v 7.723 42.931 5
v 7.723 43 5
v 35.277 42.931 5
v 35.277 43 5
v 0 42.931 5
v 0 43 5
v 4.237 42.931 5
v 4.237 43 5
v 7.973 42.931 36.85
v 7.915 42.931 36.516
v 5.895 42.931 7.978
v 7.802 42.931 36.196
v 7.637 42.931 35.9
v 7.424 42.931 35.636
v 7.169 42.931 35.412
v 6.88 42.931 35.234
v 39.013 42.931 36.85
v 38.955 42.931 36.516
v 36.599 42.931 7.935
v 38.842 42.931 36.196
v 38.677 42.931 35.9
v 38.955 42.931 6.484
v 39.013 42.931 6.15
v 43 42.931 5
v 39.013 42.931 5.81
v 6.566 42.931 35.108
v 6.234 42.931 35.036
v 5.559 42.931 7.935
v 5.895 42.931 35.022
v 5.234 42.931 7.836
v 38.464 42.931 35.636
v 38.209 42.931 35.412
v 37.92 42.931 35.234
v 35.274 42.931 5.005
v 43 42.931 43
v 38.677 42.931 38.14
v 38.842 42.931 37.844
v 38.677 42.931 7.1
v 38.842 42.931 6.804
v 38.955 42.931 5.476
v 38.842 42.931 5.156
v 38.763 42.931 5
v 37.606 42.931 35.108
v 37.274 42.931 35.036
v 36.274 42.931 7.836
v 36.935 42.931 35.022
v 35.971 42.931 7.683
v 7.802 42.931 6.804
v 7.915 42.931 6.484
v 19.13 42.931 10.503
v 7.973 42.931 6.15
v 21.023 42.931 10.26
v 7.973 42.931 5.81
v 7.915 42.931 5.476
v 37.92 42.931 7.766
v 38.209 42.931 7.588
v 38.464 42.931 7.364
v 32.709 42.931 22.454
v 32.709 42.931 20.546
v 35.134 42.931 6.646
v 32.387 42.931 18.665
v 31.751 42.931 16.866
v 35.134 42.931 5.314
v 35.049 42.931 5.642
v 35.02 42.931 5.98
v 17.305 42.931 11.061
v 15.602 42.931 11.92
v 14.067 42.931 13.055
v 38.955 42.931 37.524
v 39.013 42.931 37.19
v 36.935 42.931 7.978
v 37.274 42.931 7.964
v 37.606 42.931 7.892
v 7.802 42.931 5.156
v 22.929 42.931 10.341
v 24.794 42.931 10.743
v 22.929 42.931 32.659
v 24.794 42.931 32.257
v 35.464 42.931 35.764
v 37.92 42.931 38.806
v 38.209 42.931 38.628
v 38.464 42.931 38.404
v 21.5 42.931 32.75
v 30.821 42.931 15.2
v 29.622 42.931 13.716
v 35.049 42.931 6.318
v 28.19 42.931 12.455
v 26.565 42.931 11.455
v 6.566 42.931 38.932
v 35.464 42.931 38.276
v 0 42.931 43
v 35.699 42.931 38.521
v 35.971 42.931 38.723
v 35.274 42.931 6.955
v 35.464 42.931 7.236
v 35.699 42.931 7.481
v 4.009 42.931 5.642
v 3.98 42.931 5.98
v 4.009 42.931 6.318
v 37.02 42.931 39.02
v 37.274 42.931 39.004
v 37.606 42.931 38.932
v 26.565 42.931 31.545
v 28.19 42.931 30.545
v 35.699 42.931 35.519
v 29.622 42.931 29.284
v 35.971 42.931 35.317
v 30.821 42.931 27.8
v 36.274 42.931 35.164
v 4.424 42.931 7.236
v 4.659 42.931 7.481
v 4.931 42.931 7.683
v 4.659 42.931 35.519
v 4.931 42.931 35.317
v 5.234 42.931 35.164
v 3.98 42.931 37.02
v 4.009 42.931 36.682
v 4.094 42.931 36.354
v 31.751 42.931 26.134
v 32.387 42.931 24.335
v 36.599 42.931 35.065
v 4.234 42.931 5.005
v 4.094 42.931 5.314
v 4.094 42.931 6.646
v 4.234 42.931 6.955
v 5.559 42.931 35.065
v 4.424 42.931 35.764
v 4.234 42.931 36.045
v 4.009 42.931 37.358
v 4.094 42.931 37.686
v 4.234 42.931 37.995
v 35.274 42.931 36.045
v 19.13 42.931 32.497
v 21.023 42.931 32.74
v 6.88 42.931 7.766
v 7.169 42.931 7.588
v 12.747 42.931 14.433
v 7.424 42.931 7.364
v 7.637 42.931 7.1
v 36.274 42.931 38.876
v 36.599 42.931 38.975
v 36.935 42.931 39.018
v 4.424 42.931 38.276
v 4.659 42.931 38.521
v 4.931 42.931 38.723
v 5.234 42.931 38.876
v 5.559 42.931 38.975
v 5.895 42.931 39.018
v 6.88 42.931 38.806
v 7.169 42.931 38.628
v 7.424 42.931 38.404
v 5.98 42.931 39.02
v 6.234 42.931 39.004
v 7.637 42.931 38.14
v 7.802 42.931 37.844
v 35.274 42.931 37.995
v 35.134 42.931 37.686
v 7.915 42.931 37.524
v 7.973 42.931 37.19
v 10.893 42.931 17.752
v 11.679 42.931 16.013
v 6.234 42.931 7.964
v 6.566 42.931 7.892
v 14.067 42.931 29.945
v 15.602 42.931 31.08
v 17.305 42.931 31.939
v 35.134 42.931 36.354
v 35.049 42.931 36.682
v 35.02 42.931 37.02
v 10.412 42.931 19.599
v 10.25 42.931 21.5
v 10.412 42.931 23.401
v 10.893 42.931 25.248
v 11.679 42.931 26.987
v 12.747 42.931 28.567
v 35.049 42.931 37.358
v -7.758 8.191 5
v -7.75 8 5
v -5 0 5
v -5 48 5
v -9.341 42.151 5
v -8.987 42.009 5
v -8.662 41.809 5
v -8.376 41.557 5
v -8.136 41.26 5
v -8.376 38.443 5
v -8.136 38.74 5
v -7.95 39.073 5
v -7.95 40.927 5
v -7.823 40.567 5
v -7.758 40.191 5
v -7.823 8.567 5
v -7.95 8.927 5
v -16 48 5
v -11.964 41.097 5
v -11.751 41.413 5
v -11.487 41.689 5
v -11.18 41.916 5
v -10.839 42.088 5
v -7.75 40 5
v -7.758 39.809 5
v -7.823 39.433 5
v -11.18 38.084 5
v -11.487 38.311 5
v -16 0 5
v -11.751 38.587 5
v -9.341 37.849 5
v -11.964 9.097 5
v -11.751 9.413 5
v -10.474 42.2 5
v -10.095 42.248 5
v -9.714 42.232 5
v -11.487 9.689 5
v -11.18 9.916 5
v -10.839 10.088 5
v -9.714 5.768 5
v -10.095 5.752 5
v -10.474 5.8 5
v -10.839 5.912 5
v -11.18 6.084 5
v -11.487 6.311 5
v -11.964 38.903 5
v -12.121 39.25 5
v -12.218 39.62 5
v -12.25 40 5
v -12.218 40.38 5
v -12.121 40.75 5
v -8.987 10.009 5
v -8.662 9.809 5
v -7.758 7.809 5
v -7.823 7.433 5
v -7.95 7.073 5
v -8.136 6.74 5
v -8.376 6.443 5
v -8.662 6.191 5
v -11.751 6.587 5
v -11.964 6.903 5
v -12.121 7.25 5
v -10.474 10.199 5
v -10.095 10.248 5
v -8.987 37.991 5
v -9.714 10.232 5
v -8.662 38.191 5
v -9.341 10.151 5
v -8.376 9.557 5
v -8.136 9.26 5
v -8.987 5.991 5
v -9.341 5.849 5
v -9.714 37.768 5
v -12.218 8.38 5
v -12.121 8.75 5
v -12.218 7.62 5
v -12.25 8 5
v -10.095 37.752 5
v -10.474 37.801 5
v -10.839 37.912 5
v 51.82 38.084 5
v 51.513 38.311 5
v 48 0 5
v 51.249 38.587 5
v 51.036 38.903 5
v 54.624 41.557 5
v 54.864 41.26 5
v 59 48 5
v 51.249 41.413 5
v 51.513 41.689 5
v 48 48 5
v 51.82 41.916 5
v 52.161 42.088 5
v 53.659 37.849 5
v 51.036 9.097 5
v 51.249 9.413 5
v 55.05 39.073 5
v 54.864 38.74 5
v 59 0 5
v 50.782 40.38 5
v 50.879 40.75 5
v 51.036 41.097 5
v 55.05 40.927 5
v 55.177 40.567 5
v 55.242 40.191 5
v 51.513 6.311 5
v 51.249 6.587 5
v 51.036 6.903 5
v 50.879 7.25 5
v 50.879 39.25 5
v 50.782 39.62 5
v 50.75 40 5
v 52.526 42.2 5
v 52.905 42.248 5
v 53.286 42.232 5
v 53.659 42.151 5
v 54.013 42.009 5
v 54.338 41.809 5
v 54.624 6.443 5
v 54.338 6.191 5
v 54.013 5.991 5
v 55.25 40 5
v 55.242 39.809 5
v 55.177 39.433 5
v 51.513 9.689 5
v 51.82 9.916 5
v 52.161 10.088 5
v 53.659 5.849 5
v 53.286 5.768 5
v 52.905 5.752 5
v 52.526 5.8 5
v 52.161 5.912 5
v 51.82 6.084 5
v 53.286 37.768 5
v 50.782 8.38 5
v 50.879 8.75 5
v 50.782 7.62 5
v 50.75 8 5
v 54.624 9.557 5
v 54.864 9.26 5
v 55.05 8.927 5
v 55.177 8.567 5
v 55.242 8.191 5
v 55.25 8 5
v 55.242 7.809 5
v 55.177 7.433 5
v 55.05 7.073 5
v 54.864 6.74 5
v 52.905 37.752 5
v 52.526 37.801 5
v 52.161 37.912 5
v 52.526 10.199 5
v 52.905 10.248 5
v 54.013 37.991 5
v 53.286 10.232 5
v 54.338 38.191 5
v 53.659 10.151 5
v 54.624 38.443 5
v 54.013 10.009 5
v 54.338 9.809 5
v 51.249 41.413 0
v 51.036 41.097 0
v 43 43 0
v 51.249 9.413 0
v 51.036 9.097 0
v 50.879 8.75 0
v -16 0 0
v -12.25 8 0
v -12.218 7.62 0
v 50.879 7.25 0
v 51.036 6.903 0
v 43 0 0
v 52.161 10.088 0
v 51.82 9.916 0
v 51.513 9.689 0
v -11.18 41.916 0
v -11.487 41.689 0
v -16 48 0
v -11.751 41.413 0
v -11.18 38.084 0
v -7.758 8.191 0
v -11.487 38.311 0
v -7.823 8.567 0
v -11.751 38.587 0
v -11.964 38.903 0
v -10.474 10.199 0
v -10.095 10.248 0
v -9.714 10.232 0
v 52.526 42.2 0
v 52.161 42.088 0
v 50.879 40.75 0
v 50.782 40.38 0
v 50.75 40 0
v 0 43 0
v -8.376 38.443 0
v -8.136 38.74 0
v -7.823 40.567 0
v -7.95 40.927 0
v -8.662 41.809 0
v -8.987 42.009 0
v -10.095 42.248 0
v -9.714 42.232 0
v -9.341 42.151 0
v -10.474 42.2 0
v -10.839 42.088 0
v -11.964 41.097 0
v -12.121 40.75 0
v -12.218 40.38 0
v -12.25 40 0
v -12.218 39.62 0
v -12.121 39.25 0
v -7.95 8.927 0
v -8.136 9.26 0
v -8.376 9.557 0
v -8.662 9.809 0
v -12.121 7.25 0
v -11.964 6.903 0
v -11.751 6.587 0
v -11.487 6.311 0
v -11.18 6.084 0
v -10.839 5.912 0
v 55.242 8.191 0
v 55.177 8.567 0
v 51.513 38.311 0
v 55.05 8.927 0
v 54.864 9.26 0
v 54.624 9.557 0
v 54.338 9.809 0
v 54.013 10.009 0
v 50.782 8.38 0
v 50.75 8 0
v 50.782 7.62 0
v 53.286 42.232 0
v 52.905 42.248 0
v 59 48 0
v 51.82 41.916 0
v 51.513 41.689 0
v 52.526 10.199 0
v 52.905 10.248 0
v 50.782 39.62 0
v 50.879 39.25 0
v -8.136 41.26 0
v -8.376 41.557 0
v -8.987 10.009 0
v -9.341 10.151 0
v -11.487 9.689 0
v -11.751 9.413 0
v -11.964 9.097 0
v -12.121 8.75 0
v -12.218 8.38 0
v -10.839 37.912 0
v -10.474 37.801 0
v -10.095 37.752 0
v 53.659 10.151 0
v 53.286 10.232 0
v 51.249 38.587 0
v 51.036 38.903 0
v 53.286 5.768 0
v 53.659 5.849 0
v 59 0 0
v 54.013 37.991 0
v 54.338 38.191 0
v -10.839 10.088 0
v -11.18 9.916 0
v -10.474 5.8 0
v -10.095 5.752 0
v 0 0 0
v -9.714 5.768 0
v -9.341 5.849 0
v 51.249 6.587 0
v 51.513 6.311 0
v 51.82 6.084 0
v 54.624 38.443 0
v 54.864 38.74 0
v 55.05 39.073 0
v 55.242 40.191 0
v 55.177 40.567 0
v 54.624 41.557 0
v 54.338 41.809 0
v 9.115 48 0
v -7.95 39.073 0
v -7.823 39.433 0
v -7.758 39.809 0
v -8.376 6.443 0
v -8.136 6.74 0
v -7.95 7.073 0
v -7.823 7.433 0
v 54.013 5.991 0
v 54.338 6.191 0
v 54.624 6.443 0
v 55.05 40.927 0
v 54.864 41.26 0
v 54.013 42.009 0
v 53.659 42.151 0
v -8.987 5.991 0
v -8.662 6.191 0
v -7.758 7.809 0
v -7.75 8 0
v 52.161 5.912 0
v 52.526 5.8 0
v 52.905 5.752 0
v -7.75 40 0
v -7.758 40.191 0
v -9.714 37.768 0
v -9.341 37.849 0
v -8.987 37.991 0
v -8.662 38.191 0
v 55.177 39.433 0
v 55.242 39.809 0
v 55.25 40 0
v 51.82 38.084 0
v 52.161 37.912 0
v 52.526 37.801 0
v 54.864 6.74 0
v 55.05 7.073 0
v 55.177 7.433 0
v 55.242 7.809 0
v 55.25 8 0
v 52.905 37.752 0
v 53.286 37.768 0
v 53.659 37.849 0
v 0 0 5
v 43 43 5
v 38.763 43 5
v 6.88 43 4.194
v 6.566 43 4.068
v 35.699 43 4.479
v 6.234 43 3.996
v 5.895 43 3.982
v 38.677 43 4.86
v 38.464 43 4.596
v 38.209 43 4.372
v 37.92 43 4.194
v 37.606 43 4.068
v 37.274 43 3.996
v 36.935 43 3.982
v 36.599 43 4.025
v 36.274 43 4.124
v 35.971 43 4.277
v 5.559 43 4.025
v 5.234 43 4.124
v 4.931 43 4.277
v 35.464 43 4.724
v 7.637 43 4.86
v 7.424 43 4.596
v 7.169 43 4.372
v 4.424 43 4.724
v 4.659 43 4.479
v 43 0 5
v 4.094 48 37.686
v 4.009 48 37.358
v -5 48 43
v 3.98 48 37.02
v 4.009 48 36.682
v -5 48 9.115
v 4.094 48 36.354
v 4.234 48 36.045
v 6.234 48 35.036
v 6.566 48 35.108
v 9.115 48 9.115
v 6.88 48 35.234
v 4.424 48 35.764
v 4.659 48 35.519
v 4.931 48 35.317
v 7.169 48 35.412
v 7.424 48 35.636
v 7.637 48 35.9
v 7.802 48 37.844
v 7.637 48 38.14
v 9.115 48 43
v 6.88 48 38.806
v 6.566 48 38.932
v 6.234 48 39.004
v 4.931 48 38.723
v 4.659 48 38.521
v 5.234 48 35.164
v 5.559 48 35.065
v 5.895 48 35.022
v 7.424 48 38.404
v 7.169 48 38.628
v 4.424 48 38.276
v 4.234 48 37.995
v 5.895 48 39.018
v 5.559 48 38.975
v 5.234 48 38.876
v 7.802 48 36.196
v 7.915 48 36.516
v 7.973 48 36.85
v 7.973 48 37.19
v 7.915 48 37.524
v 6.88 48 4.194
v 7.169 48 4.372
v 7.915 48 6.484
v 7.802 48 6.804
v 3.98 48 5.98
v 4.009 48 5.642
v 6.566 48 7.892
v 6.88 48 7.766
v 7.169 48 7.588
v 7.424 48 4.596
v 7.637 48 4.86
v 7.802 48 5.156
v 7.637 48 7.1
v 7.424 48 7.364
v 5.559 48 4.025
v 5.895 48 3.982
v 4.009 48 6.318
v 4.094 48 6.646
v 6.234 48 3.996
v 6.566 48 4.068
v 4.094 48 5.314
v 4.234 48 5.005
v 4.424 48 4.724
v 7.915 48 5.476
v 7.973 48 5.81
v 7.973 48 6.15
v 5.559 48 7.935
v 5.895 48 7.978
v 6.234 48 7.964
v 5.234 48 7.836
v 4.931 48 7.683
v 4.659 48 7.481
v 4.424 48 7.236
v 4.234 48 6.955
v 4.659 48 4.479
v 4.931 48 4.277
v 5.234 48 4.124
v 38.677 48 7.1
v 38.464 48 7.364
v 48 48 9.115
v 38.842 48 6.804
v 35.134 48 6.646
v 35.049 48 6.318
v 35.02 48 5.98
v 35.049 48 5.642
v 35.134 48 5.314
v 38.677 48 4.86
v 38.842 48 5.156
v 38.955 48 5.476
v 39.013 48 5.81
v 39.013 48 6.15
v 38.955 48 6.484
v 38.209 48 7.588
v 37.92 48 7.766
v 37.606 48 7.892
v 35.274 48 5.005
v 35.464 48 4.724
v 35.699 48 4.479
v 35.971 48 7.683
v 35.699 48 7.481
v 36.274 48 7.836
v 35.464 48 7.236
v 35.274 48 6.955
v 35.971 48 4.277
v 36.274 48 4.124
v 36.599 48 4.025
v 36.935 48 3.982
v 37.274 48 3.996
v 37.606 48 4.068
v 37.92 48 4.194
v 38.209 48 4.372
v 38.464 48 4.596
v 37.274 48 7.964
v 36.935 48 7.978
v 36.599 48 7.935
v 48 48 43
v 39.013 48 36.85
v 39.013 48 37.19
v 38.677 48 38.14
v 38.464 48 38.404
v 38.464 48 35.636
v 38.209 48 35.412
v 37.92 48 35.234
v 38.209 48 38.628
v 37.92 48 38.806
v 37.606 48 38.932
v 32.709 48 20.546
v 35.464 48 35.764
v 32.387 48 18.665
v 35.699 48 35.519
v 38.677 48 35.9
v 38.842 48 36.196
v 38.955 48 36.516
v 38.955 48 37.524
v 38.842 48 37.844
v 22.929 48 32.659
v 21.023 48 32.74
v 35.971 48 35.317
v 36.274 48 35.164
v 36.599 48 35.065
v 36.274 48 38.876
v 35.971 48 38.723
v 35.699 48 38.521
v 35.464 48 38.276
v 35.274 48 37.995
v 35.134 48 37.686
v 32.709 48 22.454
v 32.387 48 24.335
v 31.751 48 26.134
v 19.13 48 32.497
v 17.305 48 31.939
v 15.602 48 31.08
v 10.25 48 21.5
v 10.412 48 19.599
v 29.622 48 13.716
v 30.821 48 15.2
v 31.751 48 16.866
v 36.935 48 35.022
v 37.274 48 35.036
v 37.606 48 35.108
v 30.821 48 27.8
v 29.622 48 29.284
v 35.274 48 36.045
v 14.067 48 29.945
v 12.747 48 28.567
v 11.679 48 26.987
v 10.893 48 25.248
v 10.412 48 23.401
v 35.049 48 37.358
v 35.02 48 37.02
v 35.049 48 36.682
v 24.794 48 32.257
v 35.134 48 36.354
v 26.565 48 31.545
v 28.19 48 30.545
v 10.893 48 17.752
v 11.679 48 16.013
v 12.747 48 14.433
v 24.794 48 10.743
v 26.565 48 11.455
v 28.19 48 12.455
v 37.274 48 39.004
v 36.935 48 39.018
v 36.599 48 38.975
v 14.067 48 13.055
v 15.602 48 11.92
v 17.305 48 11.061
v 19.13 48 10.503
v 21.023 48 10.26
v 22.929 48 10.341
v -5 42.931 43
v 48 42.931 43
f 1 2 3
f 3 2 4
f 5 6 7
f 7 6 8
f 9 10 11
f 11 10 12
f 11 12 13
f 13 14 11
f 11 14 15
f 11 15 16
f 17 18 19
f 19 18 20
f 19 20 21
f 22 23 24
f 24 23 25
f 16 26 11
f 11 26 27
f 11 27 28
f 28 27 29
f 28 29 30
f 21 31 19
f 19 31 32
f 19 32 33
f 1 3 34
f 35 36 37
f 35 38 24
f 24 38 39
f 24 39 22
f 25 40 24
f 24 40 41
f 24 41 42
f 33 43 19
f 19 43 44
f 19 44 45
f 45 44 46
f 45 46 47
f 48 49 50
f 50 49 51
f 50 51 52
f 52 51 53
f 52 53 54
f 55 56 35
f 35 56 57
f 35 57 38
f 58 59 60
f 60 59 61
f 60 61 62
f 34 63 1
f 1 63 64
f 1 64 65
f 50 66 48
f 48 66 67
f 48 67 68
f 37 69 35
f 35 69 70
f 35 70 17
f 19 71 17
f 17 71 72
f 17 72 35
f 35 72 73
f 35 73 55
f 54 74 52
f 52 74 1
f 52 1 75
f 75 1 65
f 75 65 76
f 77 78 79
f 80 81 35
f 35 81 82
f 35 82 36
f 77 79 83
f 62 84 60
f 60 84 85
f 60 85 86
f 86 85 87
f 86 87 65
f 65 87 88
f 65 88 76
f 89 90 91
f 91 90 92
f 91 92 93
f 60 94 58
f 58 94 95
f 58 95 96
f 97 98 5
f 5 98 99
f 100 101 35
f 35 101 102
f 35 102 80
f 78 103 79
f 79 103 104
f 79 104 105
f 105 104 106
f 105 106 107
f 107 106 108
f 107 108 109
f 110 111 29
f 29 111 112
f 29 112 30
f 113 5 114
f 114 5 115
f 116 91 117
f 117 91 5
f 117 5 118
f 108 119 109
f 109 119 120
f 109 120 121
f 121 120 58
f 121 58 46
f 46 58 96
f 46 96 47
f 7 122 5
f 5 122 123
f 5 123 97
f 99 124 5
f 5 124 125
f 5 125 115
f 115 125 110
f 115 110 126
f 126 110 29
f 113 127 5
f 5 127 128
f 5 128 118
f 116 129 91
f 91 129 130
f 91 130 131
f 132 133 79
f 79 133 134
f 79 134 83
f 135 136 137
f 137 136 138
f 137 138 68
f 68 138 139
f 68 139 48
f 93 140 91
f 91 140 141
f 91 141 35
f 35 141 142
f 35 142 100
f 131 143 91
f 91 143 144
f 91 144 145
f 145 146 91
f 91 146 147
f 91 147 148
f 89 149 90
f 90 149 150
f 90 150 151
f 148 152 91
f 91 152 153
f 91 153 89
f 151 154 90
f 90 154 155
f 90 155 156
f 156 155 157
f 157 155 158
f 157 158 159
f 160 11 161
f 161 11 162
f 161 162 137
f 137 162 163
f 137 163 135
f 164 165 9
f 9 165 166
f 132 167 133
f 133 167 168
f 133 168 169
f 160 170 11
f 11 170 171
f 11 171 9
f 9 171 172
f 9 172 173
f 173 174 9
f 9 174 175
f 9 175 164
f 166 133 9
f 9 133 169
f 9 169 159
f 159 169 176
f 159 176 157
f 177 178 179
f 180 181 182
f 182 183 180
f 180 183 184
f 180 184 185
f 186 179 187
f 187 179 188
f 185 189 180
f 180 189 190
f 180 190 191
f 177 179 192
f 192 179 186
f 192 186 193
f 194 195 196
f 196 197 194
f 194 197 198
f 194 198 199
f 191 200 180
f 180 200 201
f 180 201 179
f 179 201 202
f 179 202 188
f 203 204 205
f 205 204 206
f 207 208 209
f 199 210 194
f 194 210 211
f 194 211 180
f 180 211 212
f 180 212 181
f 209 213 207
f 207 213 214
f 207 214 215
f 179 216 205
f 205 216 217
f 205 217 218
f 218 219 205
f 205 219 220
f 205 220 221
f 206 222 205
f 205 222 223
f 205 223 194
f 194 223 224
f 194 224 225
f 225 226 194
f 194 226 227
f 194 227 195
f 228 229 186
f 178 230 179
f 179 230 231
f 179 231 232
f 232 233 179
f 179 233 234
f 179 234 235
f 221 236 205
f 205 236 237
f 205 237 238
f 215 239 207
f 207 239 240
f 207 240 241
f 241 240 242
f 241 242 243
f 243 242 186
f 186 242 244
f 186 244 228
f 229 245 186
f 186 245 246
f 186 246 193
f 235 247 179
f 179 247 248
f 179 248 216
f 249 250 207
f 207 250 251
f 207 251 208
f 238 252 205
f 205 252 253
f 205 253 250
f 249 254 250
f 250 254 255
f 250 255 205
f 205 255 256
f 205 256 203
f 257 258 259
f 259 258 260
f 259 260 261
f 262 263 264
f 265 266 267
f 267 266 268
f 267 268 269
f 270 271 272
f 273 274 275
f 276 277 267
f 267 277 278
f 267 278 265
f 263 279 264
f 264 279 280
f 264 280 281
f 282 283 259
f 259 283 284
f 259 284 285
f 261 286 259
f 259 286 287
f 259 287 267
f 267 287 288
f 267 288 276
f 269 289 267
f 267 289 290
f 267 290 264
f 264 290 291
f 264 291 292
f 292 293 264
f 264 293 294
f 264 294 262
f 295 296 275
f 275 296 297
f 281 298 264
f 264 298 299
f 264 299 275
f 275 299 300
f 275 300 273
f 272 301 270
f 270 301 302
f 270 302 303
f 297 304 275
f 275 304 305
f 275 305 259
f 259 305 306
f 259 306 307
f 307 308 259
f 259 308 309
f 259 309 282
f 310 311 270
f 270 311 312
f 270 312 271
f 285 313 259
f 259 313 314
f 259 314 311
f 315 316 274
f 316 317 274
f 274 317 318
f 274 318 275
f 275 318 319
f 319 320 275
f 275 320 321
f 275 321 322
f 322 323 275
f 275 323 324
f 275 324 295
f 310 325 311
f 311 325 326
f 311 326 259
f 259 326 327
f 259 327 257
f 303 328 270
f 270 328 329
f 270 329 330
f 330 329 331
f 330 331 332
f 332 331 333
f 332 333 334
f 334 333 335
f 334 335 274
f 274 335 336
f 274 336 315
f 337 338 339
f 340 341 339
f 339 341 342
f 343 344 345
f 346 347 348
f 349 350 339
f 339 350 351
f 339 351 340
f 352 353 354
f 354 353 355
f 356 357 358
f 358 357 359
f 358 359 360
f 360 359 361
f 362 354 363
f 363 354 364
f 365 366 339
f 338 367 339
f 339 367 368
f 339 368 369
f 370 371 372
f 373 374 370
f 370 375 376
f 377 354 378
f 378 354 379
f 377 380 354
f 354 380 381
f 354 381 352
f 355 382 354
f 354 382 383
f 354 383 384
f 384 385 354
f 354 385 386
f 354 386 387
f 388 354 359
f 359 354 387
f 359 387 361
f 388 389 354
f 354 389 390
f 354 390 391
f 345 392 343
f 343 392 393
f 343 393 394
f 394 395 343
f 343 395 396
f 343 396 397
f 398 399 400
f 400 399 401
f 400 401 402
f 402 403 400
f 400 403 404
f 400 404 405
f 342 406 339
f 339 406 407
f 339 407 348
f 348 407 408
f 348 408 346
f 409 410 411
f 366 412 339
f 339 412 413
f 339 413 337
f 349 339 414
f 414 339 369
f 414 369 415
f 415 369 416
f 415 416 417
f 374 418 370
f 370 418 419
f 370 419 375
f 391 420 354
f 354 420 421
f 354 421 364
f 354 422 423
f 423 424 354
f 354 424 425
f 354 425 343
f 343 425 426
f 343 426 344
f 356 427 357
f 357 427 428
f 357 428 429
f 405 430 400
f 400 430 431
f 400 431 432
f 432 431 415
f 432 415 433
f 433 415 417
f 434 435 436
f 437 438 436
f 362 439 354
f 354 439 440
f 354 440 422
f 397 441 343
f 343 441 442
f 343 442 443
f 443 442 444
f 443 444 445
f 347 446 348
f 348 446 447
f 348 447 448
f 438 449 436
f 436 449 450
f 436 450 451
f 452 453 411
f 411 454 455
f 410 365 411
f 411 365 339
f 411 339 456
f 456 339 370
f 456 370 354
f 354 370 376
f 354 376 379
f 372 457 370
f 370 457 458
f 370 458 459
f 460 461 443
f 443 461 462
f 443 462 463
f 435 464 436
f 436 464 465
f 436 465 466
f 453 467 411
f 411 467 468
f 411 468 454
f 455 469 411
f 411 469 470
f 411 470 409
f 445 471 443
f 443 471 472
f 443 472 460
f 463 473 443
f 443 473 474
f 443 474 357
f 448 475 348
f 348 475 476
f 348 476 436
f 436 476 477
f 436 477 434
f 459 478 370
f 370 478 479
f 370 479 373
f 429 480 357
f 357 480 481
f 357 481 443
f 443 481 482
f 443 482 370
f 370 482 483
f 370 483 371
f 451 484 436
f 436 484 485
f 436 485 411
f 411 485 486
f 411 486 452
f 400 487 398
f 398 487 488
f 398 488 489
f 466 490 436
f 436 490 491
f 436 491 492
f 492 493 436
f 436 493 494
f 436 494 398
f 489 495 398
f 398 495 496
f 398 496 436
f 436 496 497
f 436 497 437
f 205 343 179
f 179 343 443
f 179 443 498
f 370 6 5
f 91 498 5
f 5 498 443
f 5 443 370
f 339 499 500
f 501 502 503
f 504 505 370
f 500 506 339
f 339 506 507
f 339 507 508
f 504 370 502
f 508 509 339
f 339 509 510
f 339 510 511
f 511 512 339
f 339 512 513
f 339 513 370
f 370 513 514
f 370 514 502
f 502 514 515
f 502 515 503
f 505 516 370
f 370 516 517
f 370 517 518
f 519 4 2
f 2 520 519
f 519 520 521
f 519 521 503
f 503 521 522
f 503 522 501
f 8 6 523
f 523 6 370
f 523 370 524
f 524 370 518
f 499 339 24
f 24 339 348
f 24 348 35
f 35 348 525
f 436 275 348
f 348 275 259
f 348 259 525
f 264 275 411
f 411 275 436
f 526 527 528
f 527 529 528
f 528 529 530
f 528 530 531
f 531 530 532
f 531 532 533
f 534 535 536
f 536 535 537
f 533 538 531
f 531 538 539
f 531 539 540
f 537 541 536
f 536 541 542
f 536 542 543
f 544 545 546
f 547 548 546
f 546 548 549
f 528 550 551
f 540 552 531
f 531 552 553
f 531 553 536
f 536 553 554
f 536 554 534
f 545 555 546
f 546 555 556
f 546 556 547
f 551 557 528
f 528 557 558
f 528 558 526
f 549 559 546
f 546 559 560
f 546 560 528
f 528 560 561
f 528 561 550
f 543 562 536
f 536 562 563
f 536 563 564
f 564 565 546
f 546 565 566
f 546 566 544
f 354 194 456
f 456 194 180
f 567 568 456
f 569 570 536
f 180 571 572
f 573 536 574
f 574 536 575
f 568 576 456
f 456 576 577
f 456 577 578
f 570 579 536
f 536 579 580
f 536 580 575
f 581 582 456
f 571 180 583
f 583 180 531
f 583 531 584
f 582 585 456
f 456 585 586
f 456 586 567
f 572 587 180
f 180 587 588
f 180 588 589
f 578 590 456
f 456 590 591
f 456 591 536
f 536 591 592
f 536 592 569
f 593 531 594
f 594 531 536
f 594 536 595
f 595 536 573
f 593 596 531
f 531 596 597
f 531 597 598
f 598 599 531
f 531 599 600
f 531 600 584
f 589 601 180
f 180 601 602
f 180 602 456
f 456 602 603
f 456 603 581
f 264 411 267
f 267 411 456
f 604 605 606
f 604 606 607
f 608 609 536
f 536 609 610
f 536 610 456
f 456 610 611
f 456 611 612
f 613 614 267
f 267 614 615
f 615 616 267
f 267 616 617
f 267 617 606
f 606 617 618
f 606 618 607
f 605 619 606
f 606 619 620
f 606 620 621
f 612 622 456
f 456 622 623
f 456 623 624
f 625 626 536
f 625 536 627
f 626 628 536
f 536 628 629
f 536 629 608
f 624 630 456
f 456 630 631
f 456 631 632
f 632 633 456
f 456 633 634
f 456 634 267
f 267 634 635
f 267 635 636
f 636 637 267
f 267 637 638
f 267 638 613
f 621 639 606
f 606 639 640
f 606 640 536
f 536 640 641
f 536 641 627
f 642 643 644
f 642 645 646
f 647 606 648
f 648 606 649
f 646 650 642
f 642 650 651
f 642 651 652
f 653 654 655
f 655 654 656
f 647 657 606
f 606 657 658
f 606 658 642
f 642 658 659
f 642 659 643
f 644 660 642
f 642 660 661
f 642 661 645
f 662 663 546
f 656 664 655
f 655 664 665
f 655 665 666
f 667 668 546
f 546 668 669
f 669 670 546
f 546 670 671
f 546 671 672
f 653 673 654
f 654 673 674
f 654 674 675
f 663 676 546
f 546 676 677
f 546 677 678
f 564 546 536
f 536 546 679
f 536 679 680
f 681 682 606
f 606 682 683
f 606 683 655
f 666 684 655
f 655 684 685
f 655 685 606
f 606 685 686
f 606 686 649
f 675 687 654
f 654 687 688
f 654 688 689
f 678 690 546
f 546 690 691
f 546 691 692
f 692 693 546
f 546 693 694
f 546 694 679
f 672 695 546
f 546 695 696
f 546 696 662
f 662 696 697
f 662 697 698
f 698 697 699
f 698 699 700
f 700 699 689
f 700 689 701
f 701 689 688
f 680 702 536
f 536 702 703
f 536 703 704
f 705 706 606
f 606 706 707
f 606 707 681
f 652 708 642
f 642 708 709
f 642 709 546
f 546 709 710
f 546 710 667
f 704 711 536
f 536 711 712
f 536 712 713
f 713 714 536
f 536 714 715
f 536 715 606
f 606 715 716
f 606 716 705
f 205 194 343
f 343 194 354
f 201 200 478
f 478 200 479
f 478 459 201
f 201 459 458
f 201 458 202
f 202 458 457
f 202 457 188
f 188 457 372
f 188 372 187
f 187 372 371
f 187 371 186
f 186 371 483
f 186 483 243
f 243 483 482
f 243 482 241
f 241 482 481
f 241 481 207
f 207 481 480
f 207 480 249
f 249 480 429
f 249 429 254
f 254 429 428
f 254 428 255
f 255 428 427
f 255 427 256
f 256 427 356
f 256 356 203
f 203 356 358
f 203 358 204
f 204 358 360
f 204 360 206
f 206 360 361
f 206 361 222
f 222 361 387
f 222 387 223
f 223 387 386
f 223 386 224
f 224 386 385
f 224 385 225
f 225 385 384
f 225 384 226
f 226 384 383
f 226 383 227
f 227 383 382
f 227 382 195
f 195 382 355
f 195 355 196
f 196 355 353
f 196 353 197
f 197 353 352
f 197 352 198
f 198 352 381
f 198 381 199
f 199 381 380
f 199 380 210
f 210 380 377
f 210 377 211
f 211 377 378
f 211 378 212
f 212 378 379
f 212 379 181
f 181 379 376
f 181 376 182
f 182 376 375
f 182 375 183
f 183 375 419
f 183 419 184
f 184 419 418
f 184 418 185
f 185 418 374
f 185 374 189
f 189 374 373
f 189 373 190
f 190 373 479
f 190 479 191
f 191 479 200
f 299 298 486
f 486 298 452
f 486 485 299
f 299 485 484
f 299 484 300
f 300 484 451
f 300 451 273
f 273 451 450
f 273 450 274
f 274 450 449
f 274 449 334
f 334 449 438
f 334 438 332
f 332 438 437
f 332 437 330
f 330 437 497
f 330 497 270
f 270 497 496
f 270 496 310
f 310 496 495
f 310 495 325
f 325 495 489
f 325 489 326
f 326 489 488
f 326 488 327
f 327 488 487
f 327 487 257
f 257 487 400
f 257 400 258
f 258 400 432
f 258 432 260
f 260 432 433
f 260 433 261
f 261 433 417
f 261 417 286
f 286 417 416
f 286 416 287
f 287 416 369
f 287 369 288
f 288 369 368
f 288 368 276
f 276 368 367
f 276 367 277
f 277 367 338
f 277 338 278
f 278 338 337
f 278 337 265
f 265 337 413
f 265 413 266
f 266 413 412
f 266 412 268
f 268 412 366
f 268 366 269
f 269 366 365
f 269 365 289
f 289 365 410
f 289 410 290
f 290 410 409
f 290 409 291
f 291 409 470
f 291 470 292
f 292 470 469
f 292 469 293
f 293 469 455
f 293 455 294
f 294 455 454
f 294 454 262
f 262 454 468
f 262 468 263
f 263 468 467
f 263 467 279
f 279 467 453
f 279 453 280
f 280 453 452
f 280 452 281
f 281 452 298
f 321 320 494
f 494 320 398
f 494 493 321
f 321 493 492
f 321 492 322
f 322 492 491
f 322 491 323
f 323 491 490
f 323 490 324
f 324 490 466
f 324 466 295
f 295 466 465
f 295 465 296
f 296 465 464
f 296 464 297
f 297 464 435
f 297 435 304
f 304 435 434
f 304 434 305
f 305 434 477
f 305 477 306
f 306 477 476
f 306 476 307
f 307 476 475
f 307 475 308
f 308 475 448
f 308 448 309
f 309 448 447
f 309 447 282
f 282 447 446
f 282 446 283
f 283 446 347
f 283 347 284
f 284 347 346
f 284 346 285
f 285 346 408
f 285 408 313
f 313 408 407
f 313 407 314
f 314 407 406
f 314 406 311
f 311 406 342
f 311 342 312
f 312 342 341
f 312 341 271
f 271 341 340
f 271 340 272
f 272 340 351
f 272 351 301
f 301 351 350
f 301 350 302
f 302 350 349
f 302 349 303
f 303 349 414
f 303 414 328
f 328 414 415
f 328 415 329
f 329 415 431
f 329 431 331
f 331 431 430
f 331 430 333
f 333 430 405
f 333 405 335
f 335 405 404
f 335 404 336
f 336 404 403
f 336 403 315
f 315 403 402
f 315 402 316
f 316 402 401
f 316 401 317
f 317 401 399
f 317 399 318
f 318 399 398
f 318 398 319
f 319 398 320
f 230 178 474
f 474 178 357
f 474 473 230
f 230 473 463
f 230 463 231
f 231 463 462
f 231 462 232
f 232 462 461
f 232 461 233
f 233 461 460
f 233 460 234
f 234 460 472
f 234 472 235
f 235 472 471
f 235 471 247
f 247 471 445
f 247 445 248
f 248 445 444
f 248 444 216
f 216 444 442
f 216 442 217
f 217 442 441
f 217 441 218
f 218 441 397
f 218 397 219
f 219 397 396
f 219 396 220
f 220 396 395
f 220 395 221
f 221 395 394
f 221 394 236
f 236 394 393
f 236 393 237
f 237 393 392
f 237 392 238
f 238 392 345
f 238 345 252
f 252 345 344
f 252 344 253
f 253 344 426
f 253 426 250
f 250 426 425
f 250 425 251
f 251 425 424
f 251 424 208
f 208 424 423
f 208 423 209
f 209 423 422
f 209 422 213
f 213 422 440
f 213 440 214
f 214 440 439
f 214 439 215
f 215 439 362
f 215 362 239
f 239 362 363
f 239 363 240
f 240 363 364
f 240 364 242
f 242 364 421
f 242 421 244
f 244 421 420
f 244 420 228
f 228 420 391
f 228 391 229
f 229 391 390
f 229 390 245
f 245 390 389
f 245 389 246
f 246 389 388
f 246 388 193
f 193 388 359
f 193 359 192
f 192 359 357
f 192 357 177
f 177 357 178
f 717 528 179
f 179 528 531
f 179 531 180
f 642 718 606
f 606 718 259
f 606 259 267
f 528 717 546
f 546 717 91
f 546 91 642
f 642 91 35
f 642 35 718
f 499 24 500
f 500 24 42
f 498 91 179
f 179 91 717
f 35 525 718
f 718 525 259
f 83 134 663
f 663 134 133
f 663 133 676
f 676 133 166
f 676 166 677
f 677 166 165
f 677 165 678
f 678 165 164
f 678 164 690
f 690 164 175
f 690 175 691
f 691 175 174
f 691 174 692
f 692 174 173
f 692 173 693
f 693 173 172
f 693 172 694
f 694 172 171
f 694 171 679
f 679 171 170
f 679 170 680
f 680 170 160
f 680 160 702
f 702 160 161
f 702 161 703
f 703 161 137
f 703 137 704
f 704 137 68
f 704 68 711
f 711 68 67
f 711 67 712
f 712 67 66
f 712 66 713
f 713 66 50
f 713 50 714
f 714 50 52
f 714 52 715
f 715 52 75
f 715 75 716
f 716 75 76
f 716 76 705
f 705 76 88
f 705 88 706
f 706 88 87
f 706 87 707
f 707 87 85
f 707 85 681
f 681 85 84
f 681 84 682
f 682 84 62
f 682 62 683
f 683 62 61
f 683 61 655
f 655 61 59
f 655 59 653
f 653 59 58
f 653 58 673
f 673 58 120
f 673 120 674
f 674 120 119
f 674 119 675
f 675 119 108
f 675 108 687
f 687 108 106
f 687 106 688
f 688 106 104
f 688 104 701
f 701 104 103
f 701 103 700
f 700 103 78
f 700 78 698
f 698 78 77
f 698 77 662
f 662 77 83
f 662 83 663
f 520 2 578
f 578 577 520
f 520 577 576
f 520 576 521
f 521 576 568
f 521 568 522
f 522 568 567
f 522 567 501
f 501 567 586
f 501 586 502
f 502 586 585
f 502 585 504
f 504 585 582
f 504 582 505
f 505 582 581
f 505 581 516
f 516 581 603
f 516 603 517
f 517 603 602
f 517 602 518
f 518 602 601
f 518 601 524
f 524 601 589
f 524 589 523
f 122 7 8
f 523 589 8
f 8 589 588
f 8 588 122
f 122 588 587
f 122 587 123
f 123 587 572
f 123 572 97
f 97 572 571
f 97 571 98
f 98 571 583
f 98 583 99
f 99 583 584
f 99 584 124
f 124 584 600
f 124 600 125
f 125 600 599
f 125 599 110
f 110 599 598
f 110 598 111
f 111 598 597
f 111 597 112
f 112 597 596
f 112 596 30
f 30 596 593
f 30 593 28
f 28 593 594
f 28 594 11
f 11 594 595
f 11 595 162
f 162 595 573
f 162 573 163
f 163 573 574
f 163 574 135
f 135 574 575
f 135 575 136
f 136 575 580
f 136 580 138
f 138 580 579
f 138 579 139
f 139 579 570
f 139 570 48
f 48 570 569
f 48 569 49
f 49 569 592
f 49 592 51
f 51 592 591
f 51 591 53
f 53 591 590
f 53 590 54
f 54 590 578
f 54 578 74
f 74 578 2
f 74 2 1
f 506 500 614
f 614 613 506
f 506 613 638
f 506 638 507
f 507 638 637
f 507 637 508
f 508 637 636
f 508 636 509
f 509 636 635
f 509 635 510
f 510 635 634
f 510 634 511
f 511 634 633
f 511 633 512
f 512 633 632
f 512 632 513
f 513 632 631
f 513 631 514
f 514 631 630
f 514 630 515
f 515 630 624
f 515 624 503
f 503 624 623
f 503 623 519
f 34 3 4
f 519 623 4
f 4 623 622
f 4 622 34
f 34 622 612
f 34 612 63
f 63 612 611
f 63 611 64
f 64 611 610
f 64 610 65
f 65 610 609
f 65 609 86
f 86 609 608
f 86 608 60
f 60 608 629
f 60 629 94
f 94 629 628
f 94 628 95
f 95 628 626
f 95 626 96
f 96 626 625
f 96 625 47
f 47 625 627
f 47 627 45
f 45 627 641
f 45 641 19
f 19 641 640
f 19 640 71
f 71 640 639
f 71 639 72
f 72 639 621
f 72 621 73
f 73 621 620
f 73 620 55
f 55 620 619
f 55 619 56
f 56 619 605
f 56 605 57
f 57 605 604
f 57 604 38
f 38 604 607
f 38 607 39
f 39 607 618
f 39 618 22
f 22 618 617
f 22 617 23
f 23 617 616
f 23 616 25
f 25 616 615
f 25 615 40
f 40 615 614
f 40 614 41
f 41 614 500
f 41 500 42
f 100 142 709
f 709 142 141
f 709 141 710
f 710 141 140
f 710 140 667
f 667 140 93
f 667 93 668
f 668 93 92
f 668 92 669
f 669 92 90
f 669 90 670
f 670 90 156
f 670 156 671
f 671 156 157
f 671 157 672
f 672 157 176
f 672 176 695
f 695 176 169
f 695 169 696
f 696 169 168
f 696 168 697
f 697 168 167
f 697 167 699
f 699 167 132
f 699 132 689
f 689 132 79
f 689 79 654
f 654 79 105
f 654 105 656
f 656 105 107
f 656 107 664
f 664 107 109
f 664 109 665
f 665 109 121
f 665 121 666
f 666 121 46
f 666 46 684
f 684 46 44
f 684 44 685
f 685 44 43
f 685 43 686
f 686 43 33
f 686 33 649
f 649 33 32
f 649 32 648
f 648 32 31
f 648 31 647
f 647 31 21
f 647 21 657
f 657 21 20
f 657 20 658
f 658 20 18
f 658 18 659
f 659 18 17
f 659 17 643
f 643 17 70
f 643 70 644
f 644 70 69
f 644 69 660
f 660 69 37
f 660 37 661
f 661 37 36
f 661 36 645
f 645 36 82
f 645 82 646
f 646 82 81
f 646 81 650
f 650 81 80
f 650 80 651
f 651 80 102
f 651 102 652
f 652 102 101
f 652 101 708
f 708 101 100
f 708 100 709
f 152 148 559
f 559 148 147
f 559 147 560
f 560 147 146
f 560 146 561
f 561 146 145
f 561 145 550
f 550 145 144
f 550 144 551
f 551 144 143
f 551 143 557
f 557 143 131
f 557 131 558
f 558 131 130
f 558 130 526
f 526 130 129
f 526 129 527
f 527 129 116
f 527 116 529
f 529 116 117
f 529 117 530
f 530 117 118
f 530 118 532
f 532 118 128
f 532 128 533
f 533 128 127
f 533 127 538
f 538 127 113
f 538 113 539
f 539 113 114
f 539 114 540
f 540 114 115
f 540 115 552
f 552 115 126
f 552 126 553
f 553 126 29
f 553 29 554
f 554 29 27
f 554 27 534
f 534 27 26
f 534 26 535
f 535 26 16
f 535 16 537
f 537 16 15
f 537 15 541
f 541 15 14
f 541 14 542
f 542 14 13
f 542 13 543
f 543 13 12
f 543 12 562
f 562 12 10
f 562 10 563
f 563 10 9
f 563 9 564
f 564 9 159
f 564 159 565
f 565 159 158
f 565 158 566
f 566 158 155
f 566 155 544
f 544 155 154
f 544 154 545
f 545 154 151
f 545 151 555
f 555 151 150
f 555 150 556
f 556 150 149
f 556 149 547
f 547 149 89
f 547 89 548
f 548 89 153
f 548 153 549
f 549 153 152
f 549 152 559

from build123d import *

# Parameters (mm, degrees)
SKETCH1_R           = 2.25
BOSS_EXTRUDE1_DEPTH = 5
SKETCH2_W           = 53
SKETCH2_H           = 5.069282957
BOSS_EXTRUDE2_DEPTH = 38
BOSS_EXTRUDE3_DEPTH = 5
BOSS_EXTRUDE4_DEPTH = 5
SKETCH5_R           = 11.25
SKETCH5_R_2         = 2
CUT_EXTRUDE1_DEPTH  = 49


with BuildPart() as part:
    # Sketch1 → Boss-Extrude1 (new body)
    with BuildSketch(Plane.XY):
        Polygon((0, 0), (0, 43), (43, 43), (43, 0), (59, 0), (59, 48), (-16, 48), (-16, 0), align=None)
        with Locations((-10, 40)):
            Circle(SKETCH1_R, mode=Mode.SUBTRACT)
        with Locations((53, 40)):
            Circle(SKETCH1_R, mode=Mode.SUBTRACT)
        with Locations((53, 8)):
            Circle(SKETCH1_R, mode=Mode.SUBTRACT)
        with Locations((-10, 8)):
            Circle(SKETCH1_R, mode=Mode.SUBTRACT)
    extrude(amount=BOSS_EXTRUDE1_DEPTH)

    # Sketch2 → Boss-Extrude2 (add)
    with BuildSketch(Plane.XY.offset(5)):
        with Locations((21.5, 45.465358522)):
            Rectangle(SKETCH2_W, SKETCH2_H)
    extrude(amount=BOSS_EXTRUDE2_DEPTH)

    # Sketch3 → Boss-Extrude3 (add)
    with BuildSketch(Plane.ZY.offset(5)):
        Polygon((5, 48), (5, 0), (43, 42.930717043), (43, 48), align=None)
    extrude(amount=-BOSS_EXTRUDE3_DEPTH)

    # Sketch4 → Boss-Extrude4 (add)
    with BuildSketch(Plane(origin=(48, 0, 0), x_dir=(0, 0, -1), z_dir=(1, 0, 0))):
        Polygon((-43, 48), (-43, 42.930717043), (-5, 0), (-5, 48), align=None)
    extrude(amount=-BOSS_EXTRUDE4_DEPTH)

    # Sketch5 → Cut-Extrude1 (cut, through all)
    with BuildSketch(Plane(origin=(0, 48, 0), x_dir=(1, 0, 0), z_dir=(0, 1, 0))):
        with Locations((21.5, -21.5)):
            Circle(SKETCH5_R)
        with Locations((5.98, -5.98)):
            Circle(SKETCH5_R_2)
        with Locations((37.02, -5.98)):
            Circle(SKETCH5_R_2)
        with Locations((37.02, -37.02)):
            Circle(SKETCH5_R_2)
        with Locations((5.98, -37.02)):
            Circle(SKETCH5_R_2)
    extrude(amount=-CUT_EXTRUDE1_DEPTH, mode=Mode.SUBTRACT)


solid = part.part
